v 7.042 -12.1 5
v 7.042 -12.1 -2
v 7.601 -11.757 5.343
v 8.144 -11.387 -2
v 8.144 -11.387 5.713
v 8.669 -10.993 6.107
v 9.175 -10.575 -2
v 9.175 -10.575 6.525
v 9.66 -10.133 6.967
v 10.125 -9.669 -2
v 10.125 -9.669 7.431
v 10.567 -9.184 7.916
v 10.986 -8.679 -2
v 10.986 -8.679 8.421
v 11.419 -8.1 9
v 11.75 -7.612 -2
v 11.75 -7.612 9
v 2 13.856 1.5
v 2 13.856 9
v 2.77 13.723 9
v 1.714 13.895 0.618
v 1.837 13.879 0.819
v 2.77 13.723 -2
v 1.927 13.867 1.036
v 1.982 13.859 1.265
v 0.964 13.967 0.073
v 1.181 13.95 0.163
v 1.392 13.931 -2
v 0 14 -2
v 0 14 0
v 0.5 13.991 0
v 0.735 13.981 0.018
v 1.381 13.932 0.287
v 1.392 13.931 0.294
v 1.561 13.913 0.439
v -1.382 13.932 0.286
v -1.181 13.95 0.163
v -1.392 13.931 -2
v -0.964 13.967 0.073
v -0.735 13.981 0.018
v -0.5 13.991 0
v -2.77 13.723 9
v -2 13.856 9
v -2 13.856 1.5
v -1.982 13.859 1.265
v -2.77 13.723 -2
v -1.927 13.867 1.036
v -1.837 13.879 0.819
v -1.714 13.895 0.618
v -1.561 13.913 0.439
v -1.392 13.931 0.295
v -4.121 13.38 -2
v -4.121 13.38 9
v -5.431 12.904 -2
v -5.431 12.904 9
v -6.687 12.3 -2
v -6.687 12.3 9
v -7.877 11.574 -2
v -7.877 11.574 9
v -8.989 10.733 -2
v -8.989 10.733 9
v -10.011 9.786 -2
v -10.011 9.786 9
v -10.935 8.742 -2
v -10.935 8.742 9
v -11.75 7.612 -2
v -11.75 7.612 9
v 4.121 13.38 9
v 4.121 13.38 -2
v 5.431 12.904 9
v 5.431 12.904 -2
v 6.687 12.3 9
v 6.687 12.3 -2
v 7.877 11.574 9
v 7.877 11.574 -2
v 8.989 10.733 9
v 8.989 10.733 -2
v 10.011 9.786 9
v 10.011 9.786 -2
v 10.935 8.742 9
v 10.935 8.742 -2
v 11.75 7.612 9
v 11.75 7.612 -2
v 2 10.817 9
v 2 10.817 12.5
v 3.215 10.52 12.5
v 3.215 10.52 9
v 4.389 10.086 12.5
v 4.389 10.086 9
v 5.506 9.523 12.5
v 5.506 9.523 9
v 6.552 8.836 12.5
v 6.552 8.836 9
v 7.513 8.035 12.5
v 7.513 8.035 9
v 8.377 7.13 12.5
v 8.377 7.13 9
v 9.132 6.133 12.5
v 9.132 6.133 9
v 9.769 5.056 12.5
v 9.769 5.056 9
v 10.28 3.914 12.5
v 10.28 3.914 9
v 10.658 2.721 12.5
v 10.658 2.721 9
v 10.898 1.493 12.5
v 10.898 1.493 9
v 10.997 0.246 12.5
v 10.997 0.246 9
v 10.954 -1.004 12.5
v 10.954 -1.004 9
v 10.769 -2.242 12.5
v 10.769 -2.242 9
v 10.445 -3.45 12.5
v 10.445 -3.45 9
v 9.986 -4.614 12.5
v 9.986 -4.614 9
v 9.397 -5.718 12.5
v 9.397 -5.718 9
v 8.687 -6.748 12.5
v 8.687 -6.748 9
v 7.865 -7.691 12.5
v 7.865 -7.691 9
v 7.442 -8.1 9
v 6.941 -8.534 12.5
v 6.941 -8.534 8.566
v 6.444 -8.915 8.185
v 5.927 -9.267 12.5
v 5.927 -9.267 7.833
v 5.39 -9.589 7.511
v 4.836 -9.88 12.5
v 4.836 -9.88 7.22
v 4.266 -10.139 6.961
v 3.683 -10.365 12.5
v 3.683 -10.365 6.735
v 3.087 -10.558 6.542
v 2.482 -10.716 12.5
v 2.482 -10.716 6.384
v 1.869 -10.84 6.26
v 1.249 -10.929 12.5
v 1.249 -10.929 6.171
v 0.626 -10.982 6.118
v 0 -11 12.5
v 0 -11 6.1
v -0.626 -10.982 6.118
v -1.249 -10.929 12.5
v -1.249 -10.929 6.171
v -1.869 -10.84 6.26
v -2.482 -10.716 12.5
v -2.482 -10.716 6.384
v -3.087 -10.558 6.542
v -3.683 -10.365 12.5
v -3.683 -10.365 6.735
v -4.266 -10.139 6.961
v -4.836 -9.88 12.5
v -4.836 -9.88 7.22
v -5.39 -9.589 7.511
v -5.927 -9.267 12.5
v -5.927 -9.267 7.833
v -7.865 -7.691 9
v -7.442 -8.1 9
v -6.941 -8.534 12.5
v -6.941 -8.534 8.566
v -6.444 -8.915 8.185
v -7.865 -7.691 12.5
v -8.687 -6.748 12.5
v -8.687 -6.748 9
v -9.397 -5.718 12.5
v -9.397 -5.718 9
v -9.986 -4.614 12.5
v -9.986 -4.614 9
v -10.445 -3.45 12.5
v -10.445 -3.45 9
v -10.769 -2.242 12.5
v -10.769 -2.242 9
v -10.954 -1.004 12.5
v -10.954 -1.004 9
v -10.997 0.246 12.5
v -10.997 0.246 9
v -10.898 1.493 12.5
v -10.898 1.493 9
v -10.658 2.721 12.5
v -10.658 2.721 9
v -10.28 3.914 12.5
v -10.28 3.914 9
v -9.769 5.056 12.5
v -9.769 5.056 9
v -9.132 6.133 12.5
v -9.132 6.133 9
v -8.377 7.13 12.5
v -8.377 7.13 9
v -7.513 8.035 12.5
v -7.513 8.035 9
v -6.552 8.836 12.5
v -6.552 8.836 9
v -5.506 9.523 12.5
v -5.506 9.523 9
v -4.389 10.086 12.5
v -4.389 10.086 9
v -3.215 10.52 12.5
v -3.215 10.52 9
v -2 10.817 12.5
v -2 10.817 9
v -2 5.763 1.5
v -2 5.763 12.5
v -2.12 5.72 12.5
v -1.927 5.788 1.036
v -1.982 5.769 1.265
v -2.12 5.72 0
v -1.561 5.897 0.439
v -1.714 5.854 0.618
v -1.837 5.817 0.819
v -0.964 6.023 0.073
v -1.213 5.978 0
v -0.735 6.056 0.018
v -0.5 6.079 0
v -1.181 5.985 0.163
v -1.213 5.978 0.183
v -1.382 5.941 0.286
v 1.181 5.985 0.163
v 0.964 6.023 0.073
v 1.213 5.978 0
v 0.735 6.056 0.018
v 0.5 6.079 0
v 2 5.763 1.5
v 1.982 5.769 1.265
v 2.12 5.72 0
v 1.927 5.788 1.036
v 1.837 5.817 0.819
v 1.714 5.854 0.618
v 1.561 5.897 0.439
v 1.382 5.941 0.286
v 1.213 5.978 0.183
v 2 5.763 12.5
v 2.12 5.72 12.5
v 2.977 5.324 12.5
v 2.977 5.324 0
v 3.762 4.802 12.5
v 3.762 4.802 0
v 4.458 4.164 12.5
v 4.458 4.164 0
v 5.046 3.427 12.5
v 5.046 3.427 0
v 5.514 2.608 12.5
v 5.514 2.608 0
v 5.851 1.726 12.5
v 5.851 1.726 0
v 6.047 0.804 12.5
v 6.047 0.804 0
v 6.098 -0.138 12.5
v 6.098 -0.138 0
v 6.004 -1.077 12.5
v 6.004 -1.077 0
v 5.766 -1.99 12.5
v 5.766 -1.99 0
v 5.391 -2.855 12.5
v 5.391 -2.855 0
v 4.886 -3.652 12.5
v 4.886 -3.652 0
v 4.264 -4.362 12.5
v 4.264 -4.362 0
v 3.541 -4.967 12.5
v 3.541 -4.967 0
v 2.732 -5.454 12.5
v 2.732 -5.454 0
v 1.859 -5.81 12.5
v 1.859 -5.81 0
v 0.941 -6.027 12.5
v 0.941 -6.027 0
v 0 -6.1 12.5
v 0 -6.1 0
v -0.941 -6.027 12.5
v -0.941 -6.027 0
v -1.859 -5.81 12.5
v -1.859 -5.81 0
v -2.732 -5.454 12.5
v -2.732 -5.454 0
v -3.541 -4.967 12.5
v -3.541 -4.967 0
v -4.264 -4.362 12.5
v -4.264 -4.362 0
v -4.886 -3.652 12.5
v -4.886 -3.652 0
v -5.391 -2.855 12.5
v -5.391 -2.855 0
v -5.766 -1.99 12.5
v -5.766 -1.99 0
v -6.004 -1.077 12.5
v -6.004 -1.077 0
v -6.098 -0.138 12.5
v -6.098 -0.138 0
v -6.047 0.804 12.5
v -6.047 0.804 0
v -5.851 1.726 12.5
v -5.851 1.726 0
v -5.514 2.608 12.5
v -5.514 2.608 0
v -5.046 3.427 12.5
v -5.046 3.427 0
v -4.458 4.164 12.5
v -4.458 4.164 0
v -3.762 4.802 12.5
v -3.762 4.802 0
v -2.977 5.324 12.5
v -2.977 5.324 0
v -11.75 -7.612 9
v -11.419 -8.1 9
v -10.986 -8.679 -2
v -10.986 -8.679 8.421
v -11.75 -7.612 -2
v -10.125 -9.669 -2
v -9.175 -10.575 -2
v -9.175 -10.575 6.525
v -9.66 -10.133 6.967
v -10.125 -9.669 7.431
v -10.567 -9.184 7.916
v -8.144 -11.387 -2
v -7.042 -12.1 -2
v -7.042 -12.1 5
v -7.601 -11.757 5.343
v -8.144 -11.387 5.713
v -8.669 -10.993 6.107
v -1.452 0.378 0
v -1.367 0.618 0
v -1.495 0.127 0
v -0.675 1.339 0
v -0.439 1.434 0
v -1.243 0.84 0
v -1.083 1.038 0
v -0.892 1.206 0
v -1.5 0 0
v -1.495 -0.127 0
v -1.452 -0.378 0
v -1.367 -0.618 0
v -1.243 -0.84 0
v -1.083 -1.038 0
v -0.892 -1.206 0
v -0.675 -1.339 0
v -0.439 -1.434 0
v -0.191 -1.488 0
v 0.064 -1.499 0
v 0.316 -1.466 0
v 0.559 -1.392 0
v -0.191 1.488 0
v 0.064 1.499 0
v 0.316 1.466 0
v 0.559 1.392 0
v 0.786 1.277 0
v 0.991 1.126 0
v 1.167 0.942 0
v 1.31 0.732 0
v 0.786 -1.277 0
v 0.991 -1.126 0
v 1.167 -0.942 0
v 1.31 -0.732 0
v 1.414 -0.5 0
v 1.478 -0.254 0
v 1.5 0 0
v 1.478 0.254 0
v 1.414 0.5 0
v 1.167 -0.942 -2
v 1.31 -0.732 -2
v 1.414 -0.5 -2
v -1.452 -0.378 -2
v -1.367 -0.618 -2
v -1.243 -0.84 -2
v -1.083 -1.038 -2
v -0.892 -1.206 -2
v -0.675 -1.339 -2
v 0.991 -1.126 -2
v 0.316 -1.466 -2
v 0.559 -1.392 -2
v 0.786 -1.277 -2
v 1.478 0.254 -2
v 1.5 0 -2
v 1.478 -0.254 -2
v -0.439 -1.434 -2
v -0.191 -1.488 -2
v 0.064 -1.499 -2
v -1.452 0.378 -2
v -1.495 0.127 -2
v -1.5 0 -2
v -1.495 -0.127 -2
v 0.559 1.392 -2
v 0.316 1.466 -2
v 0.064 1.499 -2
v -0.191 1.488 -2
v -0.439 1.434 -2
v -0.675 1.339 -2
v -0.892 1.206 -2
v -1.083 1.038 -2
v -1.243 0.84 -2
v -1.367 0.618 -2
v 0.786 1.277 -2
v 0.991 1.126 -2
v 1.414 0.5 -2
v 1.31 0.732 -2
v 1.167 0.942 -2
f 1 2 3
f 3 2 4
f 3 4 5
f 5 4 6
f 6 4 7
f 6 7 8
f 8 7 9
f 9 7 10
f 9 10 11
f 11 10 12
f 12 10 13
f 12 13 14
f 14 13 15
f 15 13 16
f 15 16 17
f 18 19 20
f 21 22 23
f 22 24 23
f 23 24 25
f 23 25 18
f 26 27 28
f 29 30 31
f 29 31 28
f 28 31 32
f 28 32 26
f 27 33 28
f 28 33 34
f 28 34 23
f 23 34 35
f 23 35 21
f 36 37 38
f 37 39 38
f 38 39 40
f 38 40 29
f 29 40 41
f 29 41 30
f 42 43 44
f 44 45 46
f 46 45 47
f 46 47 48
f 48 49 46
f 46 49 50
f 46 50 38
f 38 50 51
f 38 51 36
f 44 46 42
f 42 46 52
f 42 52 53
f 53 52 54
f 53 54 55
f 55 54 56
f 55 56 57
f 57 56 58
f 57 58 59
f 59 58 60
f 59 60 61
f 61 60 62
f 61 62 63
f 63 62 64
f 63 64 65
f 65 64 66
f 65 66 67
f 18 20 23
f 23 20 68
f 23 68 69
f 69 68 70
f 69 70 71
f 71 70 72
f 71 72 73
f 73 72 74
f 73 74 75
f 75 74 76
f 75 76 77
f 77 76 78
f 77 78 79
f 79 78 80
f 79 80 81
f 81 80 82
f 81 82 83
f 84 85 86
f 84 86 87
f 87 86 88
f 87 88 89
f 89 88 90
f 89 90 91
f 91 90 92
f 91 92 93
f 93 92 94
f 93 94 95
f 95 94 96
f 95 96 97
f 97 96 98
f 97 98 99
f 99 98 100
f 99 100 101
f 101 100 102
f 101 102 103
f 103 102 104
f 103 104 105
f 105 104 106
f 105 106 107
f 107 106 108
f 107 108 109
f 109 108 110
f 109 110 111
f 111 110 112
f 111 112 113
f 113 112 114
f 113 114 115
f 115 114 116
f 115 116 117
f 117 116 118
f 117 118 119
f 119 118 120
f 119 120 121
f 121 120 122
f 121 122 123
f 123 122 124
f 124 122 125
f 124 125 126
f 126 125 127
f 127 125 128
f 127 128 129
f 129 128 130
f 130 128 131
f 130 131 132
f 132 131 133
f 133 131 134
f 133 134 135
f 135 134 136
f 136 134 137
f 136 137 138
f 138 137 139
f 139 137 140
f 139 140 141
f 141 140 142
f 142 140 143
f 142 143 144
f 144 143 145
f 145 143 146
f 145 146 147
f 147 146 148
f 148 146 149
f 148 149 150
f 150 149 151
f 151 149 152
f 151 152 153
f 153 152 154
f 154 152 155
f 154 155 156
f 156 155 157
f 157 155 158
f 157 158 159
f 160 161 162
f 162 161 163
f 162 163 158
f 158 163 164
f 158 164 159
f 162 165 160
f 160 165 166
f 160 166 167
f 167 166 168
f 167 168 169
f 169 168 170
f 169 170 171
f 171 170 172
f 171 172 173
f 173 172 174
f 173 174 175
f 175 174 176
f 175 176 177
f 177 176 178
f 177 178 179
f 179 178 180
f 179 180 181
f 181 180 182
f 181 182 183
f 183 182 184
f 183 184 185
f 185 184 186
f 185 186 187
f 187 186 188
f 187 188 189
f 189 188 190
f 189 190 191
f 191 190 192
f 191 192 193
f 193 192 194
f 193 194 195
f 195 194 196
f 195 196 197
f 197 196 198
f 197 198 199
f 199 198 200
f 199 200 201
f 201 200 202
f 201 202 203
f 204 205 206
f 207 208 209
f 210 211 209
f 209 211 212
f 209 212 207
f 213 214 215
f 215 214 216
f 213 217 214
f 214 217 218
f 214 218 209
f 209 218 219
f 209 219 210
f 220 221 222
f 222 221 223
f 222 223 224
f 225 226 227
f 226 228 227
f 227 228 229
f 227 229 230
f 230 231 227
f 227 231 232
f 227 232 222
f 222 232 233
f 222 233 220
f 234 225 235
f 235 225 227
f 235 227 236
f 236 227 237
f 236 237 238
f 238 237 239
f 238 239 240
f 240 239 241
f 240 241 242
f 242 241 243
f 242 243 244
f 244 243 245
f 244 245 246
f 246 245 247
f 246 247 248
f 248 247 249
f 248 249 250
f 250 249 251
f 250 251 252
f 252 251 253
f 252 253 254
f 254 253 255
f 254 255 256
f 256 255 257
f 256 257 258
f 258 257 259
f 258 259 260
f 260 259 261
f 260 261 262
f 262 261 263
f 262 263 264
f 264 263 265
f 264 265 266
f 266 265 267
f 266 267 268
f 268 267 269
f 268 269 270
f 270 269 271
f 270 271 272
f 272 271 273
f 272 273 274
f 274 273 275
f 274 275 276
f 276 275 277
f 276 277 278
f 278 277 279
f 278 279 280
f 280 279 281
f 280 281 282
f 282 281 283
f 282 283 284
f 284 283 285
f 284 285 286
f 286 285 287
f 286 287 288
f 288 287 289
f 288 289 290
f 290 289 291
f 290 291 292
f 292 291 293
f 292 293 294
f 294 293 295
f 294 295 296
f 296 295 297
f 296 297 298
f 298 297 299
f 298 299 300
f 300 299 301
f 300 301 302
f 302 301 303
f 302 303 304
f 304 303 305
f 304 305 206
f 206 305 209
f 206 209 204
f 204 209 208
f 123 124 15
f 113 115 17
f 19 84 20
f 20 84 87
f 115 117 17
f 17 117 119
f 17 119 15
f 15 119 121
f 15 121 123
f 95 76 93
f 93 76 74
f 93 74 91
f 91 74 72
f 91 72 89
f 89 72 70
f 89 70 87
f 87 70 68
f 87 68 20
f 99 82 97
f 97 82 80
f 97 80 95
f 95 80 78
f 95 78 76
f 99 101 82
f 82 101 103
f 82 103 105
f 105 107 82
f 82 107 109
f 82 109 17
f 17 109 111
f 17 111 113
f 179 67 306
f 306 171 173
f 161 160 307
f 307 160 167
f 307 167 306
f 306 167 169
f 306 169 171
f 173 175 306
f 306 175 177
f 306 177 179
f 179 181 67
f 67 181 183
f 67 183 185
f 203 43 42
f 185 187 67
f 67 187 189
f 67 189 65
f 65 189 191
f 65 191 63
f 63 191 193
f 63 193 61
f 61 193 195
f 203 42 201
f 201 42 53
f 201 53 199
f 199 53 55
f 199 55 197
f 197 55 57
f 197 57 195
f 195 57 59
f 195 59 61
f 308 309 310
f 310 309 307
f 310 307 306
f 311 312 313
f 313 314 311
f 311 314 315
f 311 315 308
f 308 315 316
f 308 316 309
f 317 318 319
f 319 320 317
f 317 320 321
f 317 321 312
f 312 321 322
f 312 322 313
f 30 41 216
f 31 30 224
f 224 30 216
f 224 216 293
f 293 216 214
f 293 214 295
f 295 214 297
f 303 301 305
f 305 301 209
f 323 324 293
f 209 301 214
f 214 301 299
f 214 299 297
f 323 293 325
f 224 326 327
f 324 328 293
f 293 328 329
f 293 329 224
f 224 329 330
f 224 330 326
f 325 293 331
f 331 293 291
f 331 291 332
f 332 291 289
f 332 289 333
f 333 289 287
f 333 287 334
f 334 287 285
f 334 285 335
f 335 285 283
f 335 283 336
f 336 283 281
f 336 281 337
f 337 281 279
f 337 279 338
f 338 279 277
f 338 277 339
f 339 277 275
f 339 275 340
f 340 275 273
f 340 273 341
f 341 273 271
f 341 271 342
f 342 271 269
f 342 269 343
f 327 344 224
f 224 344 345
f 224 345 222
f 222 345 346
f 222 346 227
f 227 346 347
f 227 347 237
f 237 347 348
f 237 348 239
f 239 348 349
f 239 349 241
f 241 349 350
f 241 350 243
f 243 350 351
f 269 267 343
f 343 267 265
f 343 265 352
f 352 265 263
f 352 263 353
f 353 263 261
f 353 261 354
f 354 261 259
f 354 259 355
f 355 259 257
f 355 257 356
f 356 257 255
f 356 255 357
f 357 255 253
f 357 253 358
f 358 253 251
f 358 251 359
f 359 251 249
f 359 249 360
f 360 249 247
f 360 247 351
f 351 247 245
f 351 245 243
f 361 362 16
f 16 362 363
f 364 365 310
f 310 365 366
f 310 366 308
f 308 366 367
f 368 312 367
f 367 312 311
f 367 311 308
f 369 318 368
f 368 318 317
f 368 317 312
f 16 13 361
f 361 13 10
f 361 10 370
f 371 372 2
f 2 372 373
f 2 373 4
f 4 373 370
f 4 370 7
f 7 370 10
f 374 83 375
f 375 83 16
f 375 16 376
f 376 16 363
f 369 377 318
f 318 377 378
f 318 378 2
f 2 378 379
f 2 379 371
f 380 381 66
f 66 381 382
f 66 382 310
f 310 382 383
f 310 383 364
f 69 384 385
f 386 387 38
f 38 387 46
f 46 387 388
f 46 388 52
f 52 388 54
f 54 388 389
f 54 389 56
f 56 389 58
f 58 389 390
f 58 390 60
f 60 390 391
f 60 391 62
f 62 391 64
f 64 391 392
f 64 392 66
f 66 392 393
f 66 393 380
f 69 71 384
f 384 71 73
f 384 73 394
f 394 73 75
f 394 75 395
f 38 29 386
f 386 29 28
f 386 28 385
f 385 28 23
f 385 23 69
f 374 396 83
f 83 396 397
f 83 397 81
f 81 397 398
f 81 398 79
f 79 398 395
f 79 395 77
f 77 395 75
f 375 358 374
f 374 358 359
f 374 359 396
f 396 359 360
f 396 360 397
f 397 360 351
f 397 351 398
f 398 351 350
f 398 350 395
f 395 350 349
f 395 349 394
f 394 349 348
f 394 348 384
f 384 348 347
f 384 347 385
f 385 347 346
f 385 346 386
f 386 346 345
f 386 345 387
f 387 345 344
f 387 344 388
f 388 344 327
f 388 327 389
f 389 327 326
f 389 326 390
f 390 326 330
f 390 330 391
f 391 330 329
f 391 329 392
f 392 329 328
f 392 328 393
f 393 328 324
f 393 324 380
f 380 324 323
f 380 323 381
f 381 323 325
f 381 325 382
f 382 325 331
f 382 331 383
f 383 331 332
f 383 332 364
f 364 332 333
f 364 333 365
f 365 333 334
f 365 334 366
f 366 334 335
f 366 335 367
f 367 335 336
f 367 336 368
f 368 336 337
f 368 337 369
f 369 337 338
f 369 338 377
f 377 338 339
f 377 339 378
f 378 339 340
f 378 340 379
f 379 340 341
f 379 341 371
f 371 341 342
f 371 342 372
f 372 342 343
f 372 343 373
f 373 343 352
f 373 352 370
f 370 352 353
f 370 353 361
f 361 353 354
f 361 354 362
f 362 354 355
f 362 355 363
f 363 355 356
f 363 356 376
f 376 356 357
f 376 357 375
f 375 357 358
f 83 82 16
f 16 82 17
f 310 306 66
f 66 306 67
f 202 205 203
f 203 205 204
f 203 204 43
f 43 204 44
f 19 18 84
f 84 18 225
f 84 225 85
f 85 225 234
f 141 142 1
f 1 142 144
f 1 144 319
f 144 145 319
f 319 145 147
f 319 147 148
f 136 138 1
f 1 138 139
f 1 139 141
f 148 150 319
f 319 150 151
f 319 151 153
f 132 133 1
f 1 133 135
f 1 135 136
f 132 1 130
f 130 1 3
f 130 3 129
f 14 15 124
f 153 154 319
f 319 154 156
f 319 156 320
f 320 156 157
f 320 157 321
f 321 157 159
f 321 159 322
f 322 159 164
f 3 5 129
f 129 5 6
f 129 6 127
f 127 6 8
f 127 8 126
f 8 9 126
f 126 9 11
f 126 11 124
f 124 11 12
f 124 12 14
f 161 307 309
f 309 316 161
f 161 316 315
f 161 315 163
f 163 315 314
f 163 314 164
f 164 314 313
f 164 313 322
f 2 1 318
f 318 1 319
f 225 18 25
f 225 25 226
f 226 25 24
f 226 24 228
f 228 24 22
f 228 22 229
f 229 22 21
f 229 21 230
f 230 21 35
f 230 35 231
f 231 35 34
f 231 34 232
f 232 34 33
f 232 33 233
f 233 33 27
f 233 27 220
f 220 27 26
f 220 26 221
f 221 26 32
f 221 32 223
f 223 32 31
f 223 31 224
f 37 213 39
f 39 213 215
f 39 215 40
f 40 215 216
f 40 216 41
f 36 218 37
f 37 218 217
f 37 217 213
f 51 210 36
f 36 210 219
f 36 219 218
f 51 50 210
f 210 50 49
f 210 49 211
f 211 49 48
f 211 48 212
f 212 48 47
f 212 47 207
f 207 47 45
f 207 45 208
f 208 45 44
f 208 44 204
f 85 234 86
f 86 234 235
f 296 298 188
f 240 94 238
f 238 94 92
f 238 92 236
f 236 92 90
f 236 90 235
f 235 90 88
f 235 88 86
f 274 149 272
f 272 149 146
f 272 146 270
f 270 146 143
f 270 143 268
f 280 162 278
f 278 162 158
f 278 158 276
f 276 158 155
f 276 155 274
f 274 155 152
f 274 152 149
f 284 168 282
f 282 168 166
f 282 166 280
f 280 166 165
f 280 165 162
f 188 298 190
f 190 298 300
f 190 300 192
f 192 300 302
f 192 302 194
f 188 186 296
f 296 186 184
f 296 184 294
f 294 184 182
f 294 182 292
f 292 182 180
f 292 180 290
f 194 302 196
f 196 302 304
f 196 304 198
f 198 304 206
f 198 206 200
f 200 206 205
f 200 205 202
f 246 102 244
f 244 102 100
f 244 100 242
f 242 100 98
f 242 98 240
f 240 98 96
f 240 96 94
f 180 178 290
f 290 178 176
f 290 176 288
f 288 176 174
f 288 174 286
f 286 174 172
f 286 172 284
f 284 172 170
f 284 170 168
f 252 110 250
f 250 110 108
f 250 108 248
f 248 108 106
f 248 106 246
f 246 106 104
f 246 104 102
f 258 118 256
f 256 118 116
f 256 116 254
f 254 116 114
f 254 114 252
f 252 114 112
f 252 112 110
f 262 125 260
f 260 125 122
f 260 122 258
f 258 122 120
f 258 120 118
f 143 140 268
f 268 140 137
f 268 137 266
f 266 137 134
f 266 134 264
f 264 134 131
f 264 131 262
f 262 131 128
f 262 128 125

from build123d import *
from build123d.topology import SkipClean

# Parameters (mm, degrees)
SKETCH1_R               = 9.1
SKETCH1_R_2             = 6.1
BOSS_EXTRUDE1_DEPTH     = 12
BOSS_EXTRUDE2_START     = -3
SKETCH2_R               = 11
SKETCH2_R_2             = 9.1
BOSS_EXTRUDE2_DEPTH     = 3
BOSS_EXTRUDE3_START     = 4
SKETCH3_R               = 14
SKETCH3_R_2             = 11
SKETCH3_R_3             = 9.1
BOSS_EXTRUDE3_DEPTH     = 4
BOSS_EXTRUDE4_START     = 2
SKETCH4_R               = 9.1
SKETCH4_R_2             = 1.5
BOSS_EXTRUDE4_DEPTH     = 2
CUT_EXTRUDE3_DEPTH      = 23.649503306
CUT_EXTRUDE3_DEPTH_BACK = 23.649503306
SKETCH5_W               = 4
SKETCH5_H               = 12
CUT_EXTRUDE1_DEPTH      = 22.864640404
CUT_EXTRUDE4_DEPTH      = 22.864640404
CUT_EXTRUDE4_DEPTH_BACK = 22.864640404
SKETCH7_W               = 8
SKETCH7_H               = 10
BOSS_EXTRUDE5_START     = -14
SKETCH2_2_R             = 11
SKETCH2_2_R_2           = 9.1
SKETCH2_2_R_3           = 6.1
BOSS_EXTRUDE5_DEPTH     = 14
BOSS_EXTRUDE6_START     = 7
BOSS_EXTRUDE6_DEPTH     = 7
CUT_EXTRUDE5_START      = 5.762811814
CUT_EXTRUDE5_OUTLINE_W  = 4
CUT_EXTRUDE5_OUTLINE_H  = 12
CUT_EXTRUDE5_DEPTH      = 5.237188186
BOSS_EXTRUDE7_START     = -2
SKETCH11_R              = 14
SKETCH11_R_2            = 1.5
BOSS_EXTRUDE7_DEPTH     = 2
CUT_EXTRUDE6_DEPTH      = 24.151673806
CUT_EXTRUDE6_DEPTH_BACK = 24.151673806
FILLET1_R               = 1.5
BOSS_EXTRUDE8_DEPTH     = 0.5


# Read off the part's stored shape, not the designer's step: Cut-Extrude5
with BuildPart() as part:
    # Sketch1 → Boss-Extrude1 (new body)
    with BuildSketch(Plane.XY):
        Circle(SKETCH1_R)
        Circle(SKETCH1_R_2, mode=Mode.SUBTRACT)
    extrude(amount=BOSS_EXTRUDE1_DEPTH)

    # Sketch2 → Boss-Extrude2 (add)
    with BuildSketch(Plane.XY.offset(12).offset(BOSS_EXTRUDE2_START)):
        Circle(SKETCH2_R)
        Circle(SKETCH2_R_2, mode=Mode.SUBTRACT)
    extrude(amount=BOSS_EXTRUDE2_DEPTH)

    # Sketch3 → Boss-Extrude3 (add)
    # profile 1 of 2: a face of its own
    with BuildSketch(Plane(origin=(0, 0, 9), x_dir=(-1, 0, 0), z_dir=(0, 0, -1)).offset(BOSS_EXTRUDE3_START)):
        Circle(SKETCH3_R)
        with Locations(Location((0, 0, 0), (0, 0, 180))):
            Circle(SKETCH3_R_2, mode=Mode.SUBTRACT)
    # profile 2 of 2: a face of its own
    with BuildSketch(Plane(origin=(0, 0, 9), x_dir=(-1, 0, 0), z_dir=(0, 0, -1)).offset(BOSS_EXTRUDE3_START)):
        with Locations(Location((0, 0, 0), (0, 0, 180))):
            Circle(SKETCH3_R_2)
        Circle(SKETCH3_R_3, mode=Mode.SUBTRACT)
    extrude(amount=-BOSS_EXTRUDE3_DEPTH)

    # Sketch4 → Boss-Extrude4 (add)
    with BuildSketch(Plane(origin=(0, 0, 0), x_dir=(-1, 0, 0), z_dir=(0, 0, -1)).offset(BOSS_EXTRUDE4_START)):
        Circle(SKETCH4_R)
        Circle(SKETCH4_R_2, mode=Mode.SUBTRACT)
    extrude(amount=-BOSS_EXTRUDE4_DEPTH)

    # Sketch6 → Cut-Extrude3 (cut, two sides: drawn at the far end of the back side and taken through both)
    with BuildSketch(Plane.XY.offset(9).offset(-CUT_EXTRUDE3_DEPTH_BACK)):
        with BuildLine():
            ThreePointArc((11.75, -7.611668674), (14, 0), (11.75, 7.611668674))
            Line((11.75, 7.611668674), (11.75, -7.611668674))
        make_face()
        with BuildLine():
            Line((-11.75, -7.611668674), (-11.75, 7.611668674))
            ThreePointArc((-11.75, 7.611668674), (-14, 0), (-11.75, -7.611668674))
        make_face()
    extrude(amount=CUT_EXTRUDE3_DEPTH + CUT_EXTRUDE3_DEPTH_BACK, mode=Mode.SUBTRACT)

    # Sketch5 → Cut-Extrude1 (cut, through all)
    with BuildSketch(Plane(origin=(0, 0, 0), x_dir=(1, 0, 0), z_dir=(0, 1, 0))):
        with Locations((0, -6)):
            Rectangle(SKETCH5_W, SKETCH5_H)
    extrude(amount=CUT_EXTRUDE1_DEPTH, mode=Mode.SUBTRACT)

    # Sketch7 → Cut-Extrude4 (cut, two sides: drawn at the far end of the back side and taken through both)
    with BuildSketch(Plane(origin=(0, 0, 0), x_dir=(0, 0, -1), z_dir=(1, 0, 0)).offset(-CUT_EXTRUDE4_DEPTH_BACK)):
        with Locations((-8, -18.1)):
            Rectangle(SKETCH7_W, SKETCH7_H)
        Polygon((-12, -13.1), (-12, -6.1), (-12, -5.1), (-4, -13.1), align=None)
    extrude(amount=CUT_EXTRUDE4_DEPTH + CUT_EXTRUDE4_DEPTH_BACK, mode=Mode.SUBTRACT)

    # Sketch2<2> → Boss-Extrude5 (add)
    # profile 1 of 2: a face of its own
    with BuildSketch(Plane.XY.offset(12).offset(BOSS_EXTRUDE5_START)):
        Circle(SKETCH2_2_R)
        Circle(SKETCH2_2_R_2, mode=Mode.SUBTRACT)
    # profile 2 of 2: a face of its own
    with BuildSketch(Plane.XY.offset(12).offset(BOSS_EXTRUDE5_START)):
        Circle(SKETCH2_2_R_2)
        Circle(SKETCH2_2_R_3, mode=Mode.SUBTRACT)
    extrude(amount=BOSS_EXTRUDE5_DEPTH)

    # Sketch10 → Boss-Extrude6 (add)
    with BuildSketch(Plane(origin=(0, 0, 5), x_dir=(-1, 0, 0), z_dir=(0, 0, -1)).offset(BOSS_EXTRUDE6_START)):
        with BuildLine():
            Line((2, 13.856406461), (2, 10.816653826))
            ThreePointArc((2, 10.816653826), (0, -11), (-2, 10.816653826))
            Line((-2, 10.816653826), (-2, 13.856406461))
            ThreePointArc((-2, 13.856406461), (-7.550815354, 11.789197916), (-11.75, 7.611668674))
            Line((-11.75, 7.611668674), (-11.75, -7.611668674))
            ThreePointArc((-11.75, -7.611668674), (-9.660292592, -10.133052207), (-7.042016757, -12.1))
            Line((-7.042016757, -12.1), (7.042016757, -12.1))
            ThreePointArc((7.042016757, -12.1), (9.660292592, -10.133052207), (11.75, -7.611668674))
            Line((11.75, -7.611668674), (11.75, 7.611668674))
            ThreePointArc((11.75, 7.611668674), (7.550815354, 11.789197916), (2, 13.856406461))
        make_face()
    extrude(amount=-BOSS_EXTRUDE6_DEPTH)

    # Cut-Extrude5 outline → Cut-Extrude5 (cut)
    with BuildSketch(Plane(origin=(0, 0, 0), x_dir=(1, 0, 0), z_dir=(0, 1, 0)).offset(CUT_EXTRUDE5_START)):
        with Locations((0, -6)):
            Rectangle(CUT_EXTRUDE5_OUTLINE_W, CUT_EXTRUDE5_OUTLINE_H)
    extrude(amount=CUT_EXTRUDE5_DEPTH, mode=Mode.SUBTRACT)

    # Sketch11 → Boss-Extrude7 (add)
    with SkipClean():  # the faces are left unmerged after this step: merging them gives an invalid solid
        with BuildSketch(Plane.XY.offset(BOSS_EXTRUDE7_START)):
            with Locations(Location((0, 0, 0), (0, 0, 327.064769503))):
                Circle(SKETCH11_R)
            with Locations(Location((0, 0, 0), (0, 0, 180))):
                Circle(SKETCH11_R_2, mode=Mode.SUBTRACT)
        extrude(amount=BOSS_EXTRUDE7_DEPTH)

    # Sketch12 → Cut-Extrude6 (cut, two sides: drawn at the far end of the back side and taken through both)
    with SkipClean():  # the faces are left unmerged after this step: merging them gives an invalid solid
        with BuildSketch(Plane.XY.offset(-CUT_EXTRUDE6_DEPTH_BACK)):
            with BuildLine():
                Line((11.75, 7.611668674), (11.75, -7.611668674))
                ThreePointArc((11.75, -7.611668674), (14, 0), (11.75, 7.611668674))
            make_face()
            with BuildLine():
                Line((-11.75, -7.611668674), (-11.75, 7.611668674))
                ThreePointArc((-11.75, 7.611668674), (-14, 0), (-11.75, -7.611668674))
            make_face()
            with BuildLine():
                Line((7.042016757, -12.1), (-7.042016757, -12.1))
                ThreePointArc((-7.042016757, -12.1), (0, -14), (7.042016757, -12.1))
            make_face()
        extrude(amount=CUT_EXTRUDE6_DEPTH + CUT_EXTRUDE6_DEPTH_BACK, mode=Mode.SUBTRACT)

    # Fillet1
    # the kernel refuses this fillet: 1.5 mm, written as the material it adds along each edge
    with BuildSketch(Plane(origin=(-2, 2.012811814, 0), x_dir=(0, 0, 1), z_dir=(0, 1, 0))) as fillet1_piece_1_section:
        with BuildLine():
            CenterArc((FILLET1_R, FILLET1_R), FILLET1_R, 180, 90)
            Line((0, FILLET1_R), (0, 0))
            Line((0, 0), (FILLET1_R, 0))
        make_face()
    fillet1_piece_1 = extrude(amount=8.803842012, mode=Mode.PRIVATE)
    fillet1_piece_1 = fillet1_piece_1 - Plane(origin=(0, 0, 0.34289743), x_dir=(1, 0, 0), z_dir=(0, 0, -1)) * Cylinder(6.1, 24, mode=Mode.PRIVATE)
    add(fillet1_piece_1)
    with BuildSketch(Plane(origin=(2, 2.012811814, 0), x_dir=(0, 0, 1), z_dir=(0, 1, 0))) as fillet1_piece_2_section:
        with BuildLine():
            CenterArc((FILLET1_R, -FILLET1_R), FILLET1_R, 90, 90)
            Line((0, -FILLET1_R), (0, 0))
            Line((0, 0), (FILLET1_R, 0))
        make_face()
    fillet1_piece_2 = extrude(amount=8.803842012, mode=Mode.PRIVATE)
    fillet1_piece_2 = fillet1_piece_2 - Plane(origin=(0, 0, 0.342899139), x_dir=(1, 0, 0), z_dir=(0, 0, -1)) * Cylinder(6.1, 24, mode=Mode.PRIVATE)
    add(fillet1_piece_2)
    with BuildSketch(Plane(origin=(2, 10.816653826, 0), x_dir=(0, 0, 1), z_dir=(0, 1, 0))) as fillet1_piece_3_section:
        with BuildLine():
            CenterArc((FILLET1_R, -FILLET1_R), FILLET1_R, 90, 90)
            Line((0, -FILLET1_R), (0, 0))
            Line((0, 0), (FILLET1_R, 0))
        make_face()
    fillet1_piece_3 = extrude(amount=6.789752634, mode=Mode.PRIVATE)
    fillet1_piece_3 = fillet1_piece_3 & Plane(origin=(0, 0, 0.337347522), x_dir=(-1, 0, 0), z_dir=(0, 0, -1)) * Cylinder(14, 20, mode=Mode.PRIVATE)
    add(fillet1_piece_3)
    with BuildSketch(Plane(origin=(-2, 17.606406461, 0), x_dir=(0, 0, 1), z_dir=(0, -1, 0))) as fillet1_piece_4_section:
        with BuildLine():
            CenterArc((FILLET1_R, -FILLET1_R), FILLET1_R, 90, 90)
            Line((0, -FILLET1_R), (0, 0))
            Line((0, 0), (FILLET1_R, 0))
        make_face()
    fillet1_piece_4 = extrude(amount=6.789752634, mode=Mode.PRIVATE)
    fillet1_piece_4 = fillet1_piece_4 & Plane(origin=(0, 0, 0.337344923), x_dir=(-0.8392857142857146, 0.5436906195585112, 0), z_dir=(0, 0, -1)) * Cylinder(14, 20, mode=Mode.PRIVATE)
    add(fillet1_piece_4)

    # Sketch13 → Boss-Extrude8 (add)
    with BuildSketch(Plane.XY.offset(12)):
        with BuildLine():
            Line((-2, 5.762811814), (-2, 10.816653826))
            ThreePointArc((-2, 10.816653826), (0, -11), (2, 10.816653826))
            Line((2, 10.816653826), (2, 5.762811814))
            ThreePointArc((2, 5.762811814), (0, -6.1), (-2, 5.762811814))
        make_face()
    extrude(amount=BOSS_EXTRUDE8_DEPTH)


solid = part.part
